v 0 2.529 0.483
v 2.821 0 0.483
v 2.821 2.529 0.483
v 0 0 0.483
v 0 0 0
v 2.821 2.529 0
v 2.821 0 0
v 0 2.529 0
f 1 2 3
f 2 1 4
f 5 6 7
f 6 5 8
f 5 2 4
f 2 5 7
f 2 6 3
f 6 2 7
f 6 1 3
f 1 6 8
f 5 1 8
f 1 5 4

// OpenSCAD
/* Warning, this is a very basic generator with a lot of approximation 
input data : [WLCSP, FQB, 2.821x2.529x0.483mm, 35, , A, C04-21245A]
generated by com.zoubworld.electronics.cad.model3d.Basic
Date : Sun Feb 15 10:50:49 CET 2026
*/

//body
color("black")
translate([0,0,0])
cube([2.821,2.529,0.483], center=false);
